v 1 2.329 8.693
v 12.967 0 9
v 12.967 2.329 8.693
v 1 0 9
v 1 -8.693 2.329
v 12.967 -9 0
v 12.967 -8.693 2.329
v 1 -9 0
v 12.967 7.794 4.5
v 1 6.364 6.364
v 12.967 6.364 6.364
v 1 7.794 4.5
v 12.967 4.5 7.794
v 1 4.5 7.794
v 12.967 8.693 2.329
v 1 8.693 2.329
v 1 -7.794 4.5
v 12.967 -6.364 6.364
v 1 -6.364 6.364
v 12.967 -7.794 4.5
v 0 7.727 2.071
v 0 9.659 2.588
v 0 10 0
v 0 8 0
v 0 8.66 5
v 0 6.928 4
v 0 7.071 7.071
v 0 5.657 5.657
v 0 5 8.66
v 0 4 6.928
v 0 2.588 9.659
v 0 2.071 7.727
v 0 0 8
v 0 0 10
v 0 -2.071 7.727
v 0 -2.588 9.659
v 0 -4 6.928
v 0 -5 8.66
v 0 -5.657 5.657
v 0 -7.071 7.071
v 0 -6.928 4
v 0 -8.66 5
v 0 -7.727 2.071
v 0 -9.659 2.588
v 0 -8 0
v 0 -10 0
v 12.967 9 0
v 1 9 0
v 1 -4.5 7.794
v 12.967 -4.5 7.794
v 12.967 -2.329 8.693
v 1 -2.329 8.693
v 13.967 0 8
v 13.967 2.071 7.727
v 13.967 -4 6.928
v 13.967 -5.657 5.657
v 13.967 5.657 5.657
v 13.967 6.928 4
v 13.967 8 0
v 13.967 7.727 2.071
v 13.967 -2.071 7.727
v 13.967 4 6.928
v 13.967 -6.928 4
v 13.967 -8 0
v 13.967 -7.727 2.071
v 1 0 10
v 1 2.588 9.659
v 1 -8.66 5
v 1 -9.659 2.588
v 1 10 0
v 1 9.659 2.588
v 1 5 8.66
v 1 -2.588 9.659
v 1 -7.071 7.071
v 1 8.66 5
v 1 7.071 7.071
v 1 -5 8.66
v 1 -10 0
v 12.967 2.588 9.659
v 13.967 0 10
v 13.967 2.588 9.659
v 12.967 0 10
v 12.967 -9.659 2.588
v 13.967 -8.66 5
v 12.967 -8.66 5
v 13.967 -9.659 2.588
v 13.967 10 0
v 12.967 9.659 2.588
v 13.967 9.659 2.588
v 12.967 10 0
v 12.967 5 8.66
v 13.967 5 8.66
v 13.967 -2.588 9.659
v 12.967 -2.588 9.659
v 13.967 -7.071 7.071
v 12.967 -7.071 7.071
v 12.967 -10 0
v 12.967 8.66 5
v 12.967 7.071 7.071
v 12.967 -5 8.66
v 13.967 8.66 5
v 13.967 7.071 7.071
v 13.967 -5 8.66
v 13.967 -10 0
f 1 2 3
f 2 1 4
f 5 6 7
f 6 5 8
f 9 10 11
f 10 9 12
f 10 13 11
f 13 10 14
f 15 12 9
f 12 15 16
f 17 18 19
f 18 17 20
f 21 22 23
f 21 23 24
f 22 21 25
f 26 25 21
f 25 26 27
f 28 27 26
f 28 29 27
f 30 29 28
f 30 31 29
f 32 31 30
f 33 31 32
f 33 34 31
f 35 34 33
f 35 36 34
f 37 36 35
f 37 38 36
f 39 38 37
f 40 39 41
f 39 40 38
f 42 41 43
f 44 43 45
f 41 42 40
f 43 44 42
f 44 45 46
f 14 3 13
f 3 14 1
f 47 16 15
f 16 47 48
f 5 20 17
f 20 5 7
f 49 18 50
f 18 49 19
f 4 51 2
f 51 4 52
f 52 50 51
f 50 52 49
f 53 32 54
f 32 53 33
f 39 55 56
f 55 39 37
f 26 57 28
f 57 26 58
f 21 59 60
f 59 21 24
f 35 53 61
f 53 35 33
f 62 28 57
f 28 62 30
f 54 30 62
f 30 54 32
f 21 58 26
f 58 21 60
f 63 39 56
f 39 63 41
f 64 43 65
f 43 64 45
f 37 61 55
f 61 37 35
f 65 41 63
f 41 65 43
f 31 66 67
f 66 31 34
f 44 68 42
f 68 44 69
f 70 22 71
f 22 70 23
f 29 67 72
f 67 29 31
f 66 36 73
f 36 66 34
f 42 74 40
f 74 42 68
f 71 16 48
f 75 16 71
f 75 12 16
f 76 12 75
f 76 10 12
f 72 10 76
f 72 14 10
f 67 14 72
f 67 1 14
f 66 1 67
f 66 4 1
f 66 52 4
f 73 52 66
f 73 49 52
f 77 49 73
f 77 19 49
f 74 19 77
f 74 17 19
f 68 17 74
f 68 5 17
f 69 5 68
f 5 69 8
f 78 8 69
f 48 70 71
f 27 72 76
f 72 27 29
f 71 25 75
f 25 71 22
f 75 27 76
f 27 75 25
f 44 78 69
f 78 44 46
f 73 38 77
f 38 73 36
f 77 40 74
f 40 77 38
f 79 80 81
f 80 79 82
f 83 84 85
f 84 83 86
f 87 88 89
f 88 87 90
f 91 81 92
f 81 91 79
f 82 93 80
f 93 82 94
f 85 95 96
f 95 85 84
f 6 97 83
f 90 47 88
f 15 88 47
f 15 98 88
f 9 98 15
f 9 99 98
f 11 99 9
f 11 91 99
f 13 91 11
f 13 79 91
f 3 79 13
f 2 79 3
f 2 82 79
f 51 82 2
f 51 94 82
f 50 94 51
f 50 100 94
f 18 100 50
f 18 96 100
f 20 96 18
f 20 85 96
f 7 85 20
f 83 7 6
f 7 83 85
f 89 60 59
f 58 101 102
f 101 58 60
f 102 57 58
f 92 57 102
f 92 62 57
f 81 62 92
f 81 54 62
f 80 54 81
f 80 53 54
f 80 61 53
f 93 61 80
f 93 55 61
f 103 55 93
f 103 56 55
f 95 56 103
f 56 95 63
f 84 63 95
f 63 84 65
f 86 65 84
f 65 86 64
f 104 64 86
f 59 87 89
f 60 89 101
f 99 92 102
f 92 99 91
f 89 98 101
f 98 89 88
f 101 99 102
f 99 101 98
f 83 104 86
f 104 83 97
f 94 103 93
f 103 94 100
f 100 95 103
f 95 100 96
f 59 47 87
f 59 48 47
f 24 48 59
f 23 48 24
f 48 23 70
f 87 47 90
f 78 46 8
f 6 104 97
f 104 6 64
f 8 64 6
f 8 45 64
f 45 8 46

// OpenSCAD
// file: ../build_environments.scad
// build_environments.scad: modules to build level sections
//

module pool(diameter=10.0, wall_height=2.0, step_width=3.0, connections=[])
{
    difference() {
        union() {
        difference() {
            cylinder(h=0.5,r1=diameter+step_width,r2=diameter+step_width,$fn=48);
            translate([0,0,-0.1])
                cylinder(h=0.7,r1=diameter,r2=diameter,$fn=48);
        }
        difference() {
            cylinder(h=wall_height,r1=diameter+step_width+1.0,r2=diameter+step_width+1.0,$fn=48);
            translate([0,0,-0.1])
                cylinder(h=wall_height+0.2,r1=diameter+step_width,r2=diameter+step_width,$fn=48);
        }
        }
    
        for (c = connections)
        {
            rotate([0,90,0]) {
                angle = atan2(c[1],c[0]);
                rotate([-angle,0,0]) {
                    cylinder(h=diameter+5.0,r1=c[2],r2=c[2],$fn=48);
                }
            }
        }
    }
}

module straight(length=10.0, width=2.0, dy1=0.0, dy2=0.0, dz=0.0)
{
    dims = [0, 0, 0, 0, 0, (dz/length)];
    matrix = [
        [ 1, dims[0], dims[1], 0 ],
        [ dims[2], 1, dims[4], 0 ],
        [ dims[5], dims[3], 1, 0 ],
        [ 0, 0, 0, 1 ]
    ];
    multmatrix(matrix)
    difference() {
        translate([dy1,0,0])
        union() {
            rotate([0,90,0]) {
                difference() {
                    cylinder(h=(length-dy1-dy2),r1=width+1.0,r2=width+1.0,$fn=24);
                    translate([0,0,-0.1])
                        cylinder(h=(length-dy1-dy2+0.2),r1=width,r2=width,$fn=24);
                }
                difference() {
                    cylinder(h=1.0,r1=width+2.0,r2=width+2.0,$fn=24);
                    translate([0,0,-0.1])
                        cylinder(h=1.2,r1=width,r2=width,$fn=24);
                }
                translate([0,0,(length-dy1-dy2)-1.0]) {
                    difference() {
                        cylinder(h=1.0,r1=width+2.0,r2=width+2.0,$fn=24);
                        translate([0,0,-0.1])
                            cylinder(h=1.2,r1=width,r2=width,$fn=24);
                    }
                }
            }
        }
        translate([0,0,-(2*width+4.0)/2])
            cube([3*length,3*length,2*width+4.0],center=true);
    }
}

module curve(p0=[0,0], center=[0,0], dir=1, angle=0.0, width=2.0)
{
    radius = sqrt((p0[0]-center[0])*(p0[0]-center[0]) + (p0[1]-center[1])*(p0[1]-center[1]));
    if (dir == 0) {
        difference() {
            rotate([0,0,-90])
            difference() {
                rotate_extrude(angle = angle, convexity = 10, $fn=32)
                    translate([radius, 0, 0])
                        circle(r = width+1.0,$fn=24);
                rotate([0,0,-1.0])
                    rotate_extrude(angle = angle+2.0, convexity = 10, $fn=32)
                        translate([radius, 0, 0])
                            circle(r = width,$fn=24);
            }
            translate([0,0,-(2*width+4.0)/2])
                cube([5*radius,5*radius,2*width+4.0],center=true);
        }
    }
    else {
        difference() {
            rotate([0,0,90])
            difference() {
                rotate_extrude(angle = -angle, convexity = 10, $fn=32)
                    translate([radius, 0, 0])
                        circle(r = width+1.0,$fn=24);
                rotate([0,0,1.0])
                    rotate_extrude(angle = -angle-2.0, convexity = 10, $fn=32)
                        translate([radius, 0, 0])
                            circle(r = width,$fn=24);
            }
            translate([0,0,-(2*width+4.0)/2])
                cube([5*radius,5*radius,2*width+4.0],center=true);
        }
    }

}

// test pool
//pool(diameter=12.0000, wall_height=3.0000, step_width=3.0000, connections=[[0.0000,-26.0000,2.0000], [23.6074,0.0000,2.0000]]);

// test straight, slope
//straight(length=26.0000, width=2.0000, dy1=11.8322, dy2=6.7082, dz=0.0000);
//straight(length=29.1549, width=12.0000, dy1=0.0000, dy2=0.0000, dz=-15.0000);

// test curve
//curve(p0=[23.6074, 0.0000], center=[23.6074, 5.0000], dir=0, angle=60.1011, width=2.0000);
//curve(p0=[33.6426, 12.4219], center=[37.9771, 9.9295], dir=1, angle=120.4627, width=2.0000);
// main file
use <../build_environments.scad>;
straight(length=13.9674, width=8.0000, dy1=0.0000, dy2=0.0000, dz=0.0000);
